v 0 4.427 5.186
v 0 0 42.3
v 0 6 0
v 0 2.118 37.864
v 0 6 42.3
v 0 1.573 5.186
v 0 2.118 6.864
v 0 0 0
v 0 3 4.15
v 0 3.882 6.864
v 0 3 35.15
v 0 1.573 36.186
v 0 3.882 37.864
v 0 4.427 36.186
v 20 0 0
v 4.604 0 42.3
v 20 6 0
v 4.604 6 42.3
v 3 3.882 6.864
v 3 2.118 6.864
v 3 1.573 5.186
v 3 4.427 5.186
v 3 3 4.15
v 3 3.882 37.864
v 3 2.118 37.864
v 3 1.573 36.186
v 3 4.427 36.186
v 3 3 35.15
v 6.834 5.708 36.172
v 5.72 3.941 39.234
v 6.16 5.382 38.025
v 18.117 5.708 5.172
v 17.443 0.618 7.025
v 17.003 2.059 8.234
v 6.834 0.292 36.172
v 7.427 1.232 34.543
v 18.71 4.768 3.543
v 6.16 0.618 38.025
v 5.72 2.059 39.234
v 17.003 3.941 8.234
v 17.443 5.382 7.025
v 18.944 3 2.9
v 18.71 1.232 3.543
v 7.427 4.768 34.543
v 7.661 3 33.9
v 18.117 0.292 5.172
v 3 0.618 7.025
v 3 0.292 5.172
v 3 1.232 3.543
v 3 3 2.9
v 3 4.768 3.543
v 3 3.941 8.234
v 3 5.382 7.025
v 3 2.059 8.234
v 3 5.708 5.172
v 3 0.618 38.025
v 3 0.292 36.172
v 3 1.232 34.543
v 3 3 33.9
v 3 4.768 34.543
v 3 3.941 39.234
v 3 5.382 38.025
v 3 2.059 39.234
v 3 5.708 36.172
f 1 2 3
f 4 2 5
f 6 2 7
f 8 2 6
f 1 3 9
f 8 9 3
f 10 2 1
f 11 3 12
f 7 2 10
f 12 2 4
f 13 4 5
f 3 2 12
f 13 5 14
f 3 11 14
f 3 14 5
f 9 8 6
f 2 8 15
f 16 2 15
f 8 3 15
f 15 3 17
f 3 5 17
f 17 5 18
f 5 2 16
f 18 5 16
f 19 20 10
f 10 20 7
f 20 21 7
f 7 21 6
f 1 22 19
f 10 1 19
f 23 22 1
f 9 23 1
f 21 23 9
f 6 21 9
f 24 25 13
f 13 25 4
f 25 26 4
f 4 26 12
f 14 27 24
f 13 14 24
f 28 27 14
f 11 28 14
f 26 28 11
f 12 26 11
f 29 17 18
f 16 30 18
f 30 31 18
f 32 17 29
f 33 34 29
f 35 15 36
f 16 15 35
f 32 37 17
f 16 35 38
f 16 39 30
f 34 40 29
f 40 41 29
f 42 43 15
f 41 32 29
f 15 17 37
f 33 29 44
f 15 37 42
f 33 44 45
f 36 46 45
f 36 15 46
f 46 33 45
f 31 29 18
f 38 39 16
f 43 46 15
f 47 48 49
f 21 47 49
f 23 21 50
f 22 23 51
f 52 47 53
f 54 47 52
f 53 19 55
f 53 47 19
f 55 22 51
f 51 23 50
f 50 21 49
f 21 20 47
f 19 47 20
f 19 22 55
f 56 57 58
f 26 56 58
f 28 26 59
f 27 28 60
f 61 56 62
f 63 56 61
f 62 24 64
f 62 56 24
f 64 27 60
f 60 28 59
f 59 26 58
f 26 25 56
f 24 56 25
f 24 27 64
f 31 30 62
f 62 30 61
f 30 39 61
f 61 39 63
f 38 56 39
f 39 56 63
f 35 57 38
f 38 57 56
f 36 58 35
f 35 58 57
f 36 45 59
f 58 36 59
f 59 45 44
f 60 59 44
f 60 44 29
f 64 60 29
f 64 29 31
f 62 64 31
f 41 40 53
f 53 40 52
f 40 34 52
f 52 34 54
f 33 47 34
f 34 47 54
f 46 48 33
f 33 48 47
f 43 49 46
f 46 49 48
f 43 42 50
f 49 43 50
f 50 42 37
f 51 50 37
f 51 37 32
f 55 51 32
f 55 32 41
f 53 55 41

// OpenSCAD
module motor_mount() {
	difference() {
		cube([20,6,42.3]);
		translate([20,0,0]) rotate([0,-20,0]) cube([20,6,50]);
		rotate([0,90,0]) translate([-5.65,3,-0.5]) cylinder(r=1.5, h=20);
		rotate([0,90,0]) translate([-42.3+5.65,3,-0.5]) cylinder(r=1.5, h=20);

		rotate([0,90,0]) translate([-5.65,3,3]) cylinder(r=5.5/2, h=20);
		rotate([0,90,0]) translate([-42.3+5.65,3,3]) cylinder(r=5.5/2, h=20);
	}
}

motor_mount();
